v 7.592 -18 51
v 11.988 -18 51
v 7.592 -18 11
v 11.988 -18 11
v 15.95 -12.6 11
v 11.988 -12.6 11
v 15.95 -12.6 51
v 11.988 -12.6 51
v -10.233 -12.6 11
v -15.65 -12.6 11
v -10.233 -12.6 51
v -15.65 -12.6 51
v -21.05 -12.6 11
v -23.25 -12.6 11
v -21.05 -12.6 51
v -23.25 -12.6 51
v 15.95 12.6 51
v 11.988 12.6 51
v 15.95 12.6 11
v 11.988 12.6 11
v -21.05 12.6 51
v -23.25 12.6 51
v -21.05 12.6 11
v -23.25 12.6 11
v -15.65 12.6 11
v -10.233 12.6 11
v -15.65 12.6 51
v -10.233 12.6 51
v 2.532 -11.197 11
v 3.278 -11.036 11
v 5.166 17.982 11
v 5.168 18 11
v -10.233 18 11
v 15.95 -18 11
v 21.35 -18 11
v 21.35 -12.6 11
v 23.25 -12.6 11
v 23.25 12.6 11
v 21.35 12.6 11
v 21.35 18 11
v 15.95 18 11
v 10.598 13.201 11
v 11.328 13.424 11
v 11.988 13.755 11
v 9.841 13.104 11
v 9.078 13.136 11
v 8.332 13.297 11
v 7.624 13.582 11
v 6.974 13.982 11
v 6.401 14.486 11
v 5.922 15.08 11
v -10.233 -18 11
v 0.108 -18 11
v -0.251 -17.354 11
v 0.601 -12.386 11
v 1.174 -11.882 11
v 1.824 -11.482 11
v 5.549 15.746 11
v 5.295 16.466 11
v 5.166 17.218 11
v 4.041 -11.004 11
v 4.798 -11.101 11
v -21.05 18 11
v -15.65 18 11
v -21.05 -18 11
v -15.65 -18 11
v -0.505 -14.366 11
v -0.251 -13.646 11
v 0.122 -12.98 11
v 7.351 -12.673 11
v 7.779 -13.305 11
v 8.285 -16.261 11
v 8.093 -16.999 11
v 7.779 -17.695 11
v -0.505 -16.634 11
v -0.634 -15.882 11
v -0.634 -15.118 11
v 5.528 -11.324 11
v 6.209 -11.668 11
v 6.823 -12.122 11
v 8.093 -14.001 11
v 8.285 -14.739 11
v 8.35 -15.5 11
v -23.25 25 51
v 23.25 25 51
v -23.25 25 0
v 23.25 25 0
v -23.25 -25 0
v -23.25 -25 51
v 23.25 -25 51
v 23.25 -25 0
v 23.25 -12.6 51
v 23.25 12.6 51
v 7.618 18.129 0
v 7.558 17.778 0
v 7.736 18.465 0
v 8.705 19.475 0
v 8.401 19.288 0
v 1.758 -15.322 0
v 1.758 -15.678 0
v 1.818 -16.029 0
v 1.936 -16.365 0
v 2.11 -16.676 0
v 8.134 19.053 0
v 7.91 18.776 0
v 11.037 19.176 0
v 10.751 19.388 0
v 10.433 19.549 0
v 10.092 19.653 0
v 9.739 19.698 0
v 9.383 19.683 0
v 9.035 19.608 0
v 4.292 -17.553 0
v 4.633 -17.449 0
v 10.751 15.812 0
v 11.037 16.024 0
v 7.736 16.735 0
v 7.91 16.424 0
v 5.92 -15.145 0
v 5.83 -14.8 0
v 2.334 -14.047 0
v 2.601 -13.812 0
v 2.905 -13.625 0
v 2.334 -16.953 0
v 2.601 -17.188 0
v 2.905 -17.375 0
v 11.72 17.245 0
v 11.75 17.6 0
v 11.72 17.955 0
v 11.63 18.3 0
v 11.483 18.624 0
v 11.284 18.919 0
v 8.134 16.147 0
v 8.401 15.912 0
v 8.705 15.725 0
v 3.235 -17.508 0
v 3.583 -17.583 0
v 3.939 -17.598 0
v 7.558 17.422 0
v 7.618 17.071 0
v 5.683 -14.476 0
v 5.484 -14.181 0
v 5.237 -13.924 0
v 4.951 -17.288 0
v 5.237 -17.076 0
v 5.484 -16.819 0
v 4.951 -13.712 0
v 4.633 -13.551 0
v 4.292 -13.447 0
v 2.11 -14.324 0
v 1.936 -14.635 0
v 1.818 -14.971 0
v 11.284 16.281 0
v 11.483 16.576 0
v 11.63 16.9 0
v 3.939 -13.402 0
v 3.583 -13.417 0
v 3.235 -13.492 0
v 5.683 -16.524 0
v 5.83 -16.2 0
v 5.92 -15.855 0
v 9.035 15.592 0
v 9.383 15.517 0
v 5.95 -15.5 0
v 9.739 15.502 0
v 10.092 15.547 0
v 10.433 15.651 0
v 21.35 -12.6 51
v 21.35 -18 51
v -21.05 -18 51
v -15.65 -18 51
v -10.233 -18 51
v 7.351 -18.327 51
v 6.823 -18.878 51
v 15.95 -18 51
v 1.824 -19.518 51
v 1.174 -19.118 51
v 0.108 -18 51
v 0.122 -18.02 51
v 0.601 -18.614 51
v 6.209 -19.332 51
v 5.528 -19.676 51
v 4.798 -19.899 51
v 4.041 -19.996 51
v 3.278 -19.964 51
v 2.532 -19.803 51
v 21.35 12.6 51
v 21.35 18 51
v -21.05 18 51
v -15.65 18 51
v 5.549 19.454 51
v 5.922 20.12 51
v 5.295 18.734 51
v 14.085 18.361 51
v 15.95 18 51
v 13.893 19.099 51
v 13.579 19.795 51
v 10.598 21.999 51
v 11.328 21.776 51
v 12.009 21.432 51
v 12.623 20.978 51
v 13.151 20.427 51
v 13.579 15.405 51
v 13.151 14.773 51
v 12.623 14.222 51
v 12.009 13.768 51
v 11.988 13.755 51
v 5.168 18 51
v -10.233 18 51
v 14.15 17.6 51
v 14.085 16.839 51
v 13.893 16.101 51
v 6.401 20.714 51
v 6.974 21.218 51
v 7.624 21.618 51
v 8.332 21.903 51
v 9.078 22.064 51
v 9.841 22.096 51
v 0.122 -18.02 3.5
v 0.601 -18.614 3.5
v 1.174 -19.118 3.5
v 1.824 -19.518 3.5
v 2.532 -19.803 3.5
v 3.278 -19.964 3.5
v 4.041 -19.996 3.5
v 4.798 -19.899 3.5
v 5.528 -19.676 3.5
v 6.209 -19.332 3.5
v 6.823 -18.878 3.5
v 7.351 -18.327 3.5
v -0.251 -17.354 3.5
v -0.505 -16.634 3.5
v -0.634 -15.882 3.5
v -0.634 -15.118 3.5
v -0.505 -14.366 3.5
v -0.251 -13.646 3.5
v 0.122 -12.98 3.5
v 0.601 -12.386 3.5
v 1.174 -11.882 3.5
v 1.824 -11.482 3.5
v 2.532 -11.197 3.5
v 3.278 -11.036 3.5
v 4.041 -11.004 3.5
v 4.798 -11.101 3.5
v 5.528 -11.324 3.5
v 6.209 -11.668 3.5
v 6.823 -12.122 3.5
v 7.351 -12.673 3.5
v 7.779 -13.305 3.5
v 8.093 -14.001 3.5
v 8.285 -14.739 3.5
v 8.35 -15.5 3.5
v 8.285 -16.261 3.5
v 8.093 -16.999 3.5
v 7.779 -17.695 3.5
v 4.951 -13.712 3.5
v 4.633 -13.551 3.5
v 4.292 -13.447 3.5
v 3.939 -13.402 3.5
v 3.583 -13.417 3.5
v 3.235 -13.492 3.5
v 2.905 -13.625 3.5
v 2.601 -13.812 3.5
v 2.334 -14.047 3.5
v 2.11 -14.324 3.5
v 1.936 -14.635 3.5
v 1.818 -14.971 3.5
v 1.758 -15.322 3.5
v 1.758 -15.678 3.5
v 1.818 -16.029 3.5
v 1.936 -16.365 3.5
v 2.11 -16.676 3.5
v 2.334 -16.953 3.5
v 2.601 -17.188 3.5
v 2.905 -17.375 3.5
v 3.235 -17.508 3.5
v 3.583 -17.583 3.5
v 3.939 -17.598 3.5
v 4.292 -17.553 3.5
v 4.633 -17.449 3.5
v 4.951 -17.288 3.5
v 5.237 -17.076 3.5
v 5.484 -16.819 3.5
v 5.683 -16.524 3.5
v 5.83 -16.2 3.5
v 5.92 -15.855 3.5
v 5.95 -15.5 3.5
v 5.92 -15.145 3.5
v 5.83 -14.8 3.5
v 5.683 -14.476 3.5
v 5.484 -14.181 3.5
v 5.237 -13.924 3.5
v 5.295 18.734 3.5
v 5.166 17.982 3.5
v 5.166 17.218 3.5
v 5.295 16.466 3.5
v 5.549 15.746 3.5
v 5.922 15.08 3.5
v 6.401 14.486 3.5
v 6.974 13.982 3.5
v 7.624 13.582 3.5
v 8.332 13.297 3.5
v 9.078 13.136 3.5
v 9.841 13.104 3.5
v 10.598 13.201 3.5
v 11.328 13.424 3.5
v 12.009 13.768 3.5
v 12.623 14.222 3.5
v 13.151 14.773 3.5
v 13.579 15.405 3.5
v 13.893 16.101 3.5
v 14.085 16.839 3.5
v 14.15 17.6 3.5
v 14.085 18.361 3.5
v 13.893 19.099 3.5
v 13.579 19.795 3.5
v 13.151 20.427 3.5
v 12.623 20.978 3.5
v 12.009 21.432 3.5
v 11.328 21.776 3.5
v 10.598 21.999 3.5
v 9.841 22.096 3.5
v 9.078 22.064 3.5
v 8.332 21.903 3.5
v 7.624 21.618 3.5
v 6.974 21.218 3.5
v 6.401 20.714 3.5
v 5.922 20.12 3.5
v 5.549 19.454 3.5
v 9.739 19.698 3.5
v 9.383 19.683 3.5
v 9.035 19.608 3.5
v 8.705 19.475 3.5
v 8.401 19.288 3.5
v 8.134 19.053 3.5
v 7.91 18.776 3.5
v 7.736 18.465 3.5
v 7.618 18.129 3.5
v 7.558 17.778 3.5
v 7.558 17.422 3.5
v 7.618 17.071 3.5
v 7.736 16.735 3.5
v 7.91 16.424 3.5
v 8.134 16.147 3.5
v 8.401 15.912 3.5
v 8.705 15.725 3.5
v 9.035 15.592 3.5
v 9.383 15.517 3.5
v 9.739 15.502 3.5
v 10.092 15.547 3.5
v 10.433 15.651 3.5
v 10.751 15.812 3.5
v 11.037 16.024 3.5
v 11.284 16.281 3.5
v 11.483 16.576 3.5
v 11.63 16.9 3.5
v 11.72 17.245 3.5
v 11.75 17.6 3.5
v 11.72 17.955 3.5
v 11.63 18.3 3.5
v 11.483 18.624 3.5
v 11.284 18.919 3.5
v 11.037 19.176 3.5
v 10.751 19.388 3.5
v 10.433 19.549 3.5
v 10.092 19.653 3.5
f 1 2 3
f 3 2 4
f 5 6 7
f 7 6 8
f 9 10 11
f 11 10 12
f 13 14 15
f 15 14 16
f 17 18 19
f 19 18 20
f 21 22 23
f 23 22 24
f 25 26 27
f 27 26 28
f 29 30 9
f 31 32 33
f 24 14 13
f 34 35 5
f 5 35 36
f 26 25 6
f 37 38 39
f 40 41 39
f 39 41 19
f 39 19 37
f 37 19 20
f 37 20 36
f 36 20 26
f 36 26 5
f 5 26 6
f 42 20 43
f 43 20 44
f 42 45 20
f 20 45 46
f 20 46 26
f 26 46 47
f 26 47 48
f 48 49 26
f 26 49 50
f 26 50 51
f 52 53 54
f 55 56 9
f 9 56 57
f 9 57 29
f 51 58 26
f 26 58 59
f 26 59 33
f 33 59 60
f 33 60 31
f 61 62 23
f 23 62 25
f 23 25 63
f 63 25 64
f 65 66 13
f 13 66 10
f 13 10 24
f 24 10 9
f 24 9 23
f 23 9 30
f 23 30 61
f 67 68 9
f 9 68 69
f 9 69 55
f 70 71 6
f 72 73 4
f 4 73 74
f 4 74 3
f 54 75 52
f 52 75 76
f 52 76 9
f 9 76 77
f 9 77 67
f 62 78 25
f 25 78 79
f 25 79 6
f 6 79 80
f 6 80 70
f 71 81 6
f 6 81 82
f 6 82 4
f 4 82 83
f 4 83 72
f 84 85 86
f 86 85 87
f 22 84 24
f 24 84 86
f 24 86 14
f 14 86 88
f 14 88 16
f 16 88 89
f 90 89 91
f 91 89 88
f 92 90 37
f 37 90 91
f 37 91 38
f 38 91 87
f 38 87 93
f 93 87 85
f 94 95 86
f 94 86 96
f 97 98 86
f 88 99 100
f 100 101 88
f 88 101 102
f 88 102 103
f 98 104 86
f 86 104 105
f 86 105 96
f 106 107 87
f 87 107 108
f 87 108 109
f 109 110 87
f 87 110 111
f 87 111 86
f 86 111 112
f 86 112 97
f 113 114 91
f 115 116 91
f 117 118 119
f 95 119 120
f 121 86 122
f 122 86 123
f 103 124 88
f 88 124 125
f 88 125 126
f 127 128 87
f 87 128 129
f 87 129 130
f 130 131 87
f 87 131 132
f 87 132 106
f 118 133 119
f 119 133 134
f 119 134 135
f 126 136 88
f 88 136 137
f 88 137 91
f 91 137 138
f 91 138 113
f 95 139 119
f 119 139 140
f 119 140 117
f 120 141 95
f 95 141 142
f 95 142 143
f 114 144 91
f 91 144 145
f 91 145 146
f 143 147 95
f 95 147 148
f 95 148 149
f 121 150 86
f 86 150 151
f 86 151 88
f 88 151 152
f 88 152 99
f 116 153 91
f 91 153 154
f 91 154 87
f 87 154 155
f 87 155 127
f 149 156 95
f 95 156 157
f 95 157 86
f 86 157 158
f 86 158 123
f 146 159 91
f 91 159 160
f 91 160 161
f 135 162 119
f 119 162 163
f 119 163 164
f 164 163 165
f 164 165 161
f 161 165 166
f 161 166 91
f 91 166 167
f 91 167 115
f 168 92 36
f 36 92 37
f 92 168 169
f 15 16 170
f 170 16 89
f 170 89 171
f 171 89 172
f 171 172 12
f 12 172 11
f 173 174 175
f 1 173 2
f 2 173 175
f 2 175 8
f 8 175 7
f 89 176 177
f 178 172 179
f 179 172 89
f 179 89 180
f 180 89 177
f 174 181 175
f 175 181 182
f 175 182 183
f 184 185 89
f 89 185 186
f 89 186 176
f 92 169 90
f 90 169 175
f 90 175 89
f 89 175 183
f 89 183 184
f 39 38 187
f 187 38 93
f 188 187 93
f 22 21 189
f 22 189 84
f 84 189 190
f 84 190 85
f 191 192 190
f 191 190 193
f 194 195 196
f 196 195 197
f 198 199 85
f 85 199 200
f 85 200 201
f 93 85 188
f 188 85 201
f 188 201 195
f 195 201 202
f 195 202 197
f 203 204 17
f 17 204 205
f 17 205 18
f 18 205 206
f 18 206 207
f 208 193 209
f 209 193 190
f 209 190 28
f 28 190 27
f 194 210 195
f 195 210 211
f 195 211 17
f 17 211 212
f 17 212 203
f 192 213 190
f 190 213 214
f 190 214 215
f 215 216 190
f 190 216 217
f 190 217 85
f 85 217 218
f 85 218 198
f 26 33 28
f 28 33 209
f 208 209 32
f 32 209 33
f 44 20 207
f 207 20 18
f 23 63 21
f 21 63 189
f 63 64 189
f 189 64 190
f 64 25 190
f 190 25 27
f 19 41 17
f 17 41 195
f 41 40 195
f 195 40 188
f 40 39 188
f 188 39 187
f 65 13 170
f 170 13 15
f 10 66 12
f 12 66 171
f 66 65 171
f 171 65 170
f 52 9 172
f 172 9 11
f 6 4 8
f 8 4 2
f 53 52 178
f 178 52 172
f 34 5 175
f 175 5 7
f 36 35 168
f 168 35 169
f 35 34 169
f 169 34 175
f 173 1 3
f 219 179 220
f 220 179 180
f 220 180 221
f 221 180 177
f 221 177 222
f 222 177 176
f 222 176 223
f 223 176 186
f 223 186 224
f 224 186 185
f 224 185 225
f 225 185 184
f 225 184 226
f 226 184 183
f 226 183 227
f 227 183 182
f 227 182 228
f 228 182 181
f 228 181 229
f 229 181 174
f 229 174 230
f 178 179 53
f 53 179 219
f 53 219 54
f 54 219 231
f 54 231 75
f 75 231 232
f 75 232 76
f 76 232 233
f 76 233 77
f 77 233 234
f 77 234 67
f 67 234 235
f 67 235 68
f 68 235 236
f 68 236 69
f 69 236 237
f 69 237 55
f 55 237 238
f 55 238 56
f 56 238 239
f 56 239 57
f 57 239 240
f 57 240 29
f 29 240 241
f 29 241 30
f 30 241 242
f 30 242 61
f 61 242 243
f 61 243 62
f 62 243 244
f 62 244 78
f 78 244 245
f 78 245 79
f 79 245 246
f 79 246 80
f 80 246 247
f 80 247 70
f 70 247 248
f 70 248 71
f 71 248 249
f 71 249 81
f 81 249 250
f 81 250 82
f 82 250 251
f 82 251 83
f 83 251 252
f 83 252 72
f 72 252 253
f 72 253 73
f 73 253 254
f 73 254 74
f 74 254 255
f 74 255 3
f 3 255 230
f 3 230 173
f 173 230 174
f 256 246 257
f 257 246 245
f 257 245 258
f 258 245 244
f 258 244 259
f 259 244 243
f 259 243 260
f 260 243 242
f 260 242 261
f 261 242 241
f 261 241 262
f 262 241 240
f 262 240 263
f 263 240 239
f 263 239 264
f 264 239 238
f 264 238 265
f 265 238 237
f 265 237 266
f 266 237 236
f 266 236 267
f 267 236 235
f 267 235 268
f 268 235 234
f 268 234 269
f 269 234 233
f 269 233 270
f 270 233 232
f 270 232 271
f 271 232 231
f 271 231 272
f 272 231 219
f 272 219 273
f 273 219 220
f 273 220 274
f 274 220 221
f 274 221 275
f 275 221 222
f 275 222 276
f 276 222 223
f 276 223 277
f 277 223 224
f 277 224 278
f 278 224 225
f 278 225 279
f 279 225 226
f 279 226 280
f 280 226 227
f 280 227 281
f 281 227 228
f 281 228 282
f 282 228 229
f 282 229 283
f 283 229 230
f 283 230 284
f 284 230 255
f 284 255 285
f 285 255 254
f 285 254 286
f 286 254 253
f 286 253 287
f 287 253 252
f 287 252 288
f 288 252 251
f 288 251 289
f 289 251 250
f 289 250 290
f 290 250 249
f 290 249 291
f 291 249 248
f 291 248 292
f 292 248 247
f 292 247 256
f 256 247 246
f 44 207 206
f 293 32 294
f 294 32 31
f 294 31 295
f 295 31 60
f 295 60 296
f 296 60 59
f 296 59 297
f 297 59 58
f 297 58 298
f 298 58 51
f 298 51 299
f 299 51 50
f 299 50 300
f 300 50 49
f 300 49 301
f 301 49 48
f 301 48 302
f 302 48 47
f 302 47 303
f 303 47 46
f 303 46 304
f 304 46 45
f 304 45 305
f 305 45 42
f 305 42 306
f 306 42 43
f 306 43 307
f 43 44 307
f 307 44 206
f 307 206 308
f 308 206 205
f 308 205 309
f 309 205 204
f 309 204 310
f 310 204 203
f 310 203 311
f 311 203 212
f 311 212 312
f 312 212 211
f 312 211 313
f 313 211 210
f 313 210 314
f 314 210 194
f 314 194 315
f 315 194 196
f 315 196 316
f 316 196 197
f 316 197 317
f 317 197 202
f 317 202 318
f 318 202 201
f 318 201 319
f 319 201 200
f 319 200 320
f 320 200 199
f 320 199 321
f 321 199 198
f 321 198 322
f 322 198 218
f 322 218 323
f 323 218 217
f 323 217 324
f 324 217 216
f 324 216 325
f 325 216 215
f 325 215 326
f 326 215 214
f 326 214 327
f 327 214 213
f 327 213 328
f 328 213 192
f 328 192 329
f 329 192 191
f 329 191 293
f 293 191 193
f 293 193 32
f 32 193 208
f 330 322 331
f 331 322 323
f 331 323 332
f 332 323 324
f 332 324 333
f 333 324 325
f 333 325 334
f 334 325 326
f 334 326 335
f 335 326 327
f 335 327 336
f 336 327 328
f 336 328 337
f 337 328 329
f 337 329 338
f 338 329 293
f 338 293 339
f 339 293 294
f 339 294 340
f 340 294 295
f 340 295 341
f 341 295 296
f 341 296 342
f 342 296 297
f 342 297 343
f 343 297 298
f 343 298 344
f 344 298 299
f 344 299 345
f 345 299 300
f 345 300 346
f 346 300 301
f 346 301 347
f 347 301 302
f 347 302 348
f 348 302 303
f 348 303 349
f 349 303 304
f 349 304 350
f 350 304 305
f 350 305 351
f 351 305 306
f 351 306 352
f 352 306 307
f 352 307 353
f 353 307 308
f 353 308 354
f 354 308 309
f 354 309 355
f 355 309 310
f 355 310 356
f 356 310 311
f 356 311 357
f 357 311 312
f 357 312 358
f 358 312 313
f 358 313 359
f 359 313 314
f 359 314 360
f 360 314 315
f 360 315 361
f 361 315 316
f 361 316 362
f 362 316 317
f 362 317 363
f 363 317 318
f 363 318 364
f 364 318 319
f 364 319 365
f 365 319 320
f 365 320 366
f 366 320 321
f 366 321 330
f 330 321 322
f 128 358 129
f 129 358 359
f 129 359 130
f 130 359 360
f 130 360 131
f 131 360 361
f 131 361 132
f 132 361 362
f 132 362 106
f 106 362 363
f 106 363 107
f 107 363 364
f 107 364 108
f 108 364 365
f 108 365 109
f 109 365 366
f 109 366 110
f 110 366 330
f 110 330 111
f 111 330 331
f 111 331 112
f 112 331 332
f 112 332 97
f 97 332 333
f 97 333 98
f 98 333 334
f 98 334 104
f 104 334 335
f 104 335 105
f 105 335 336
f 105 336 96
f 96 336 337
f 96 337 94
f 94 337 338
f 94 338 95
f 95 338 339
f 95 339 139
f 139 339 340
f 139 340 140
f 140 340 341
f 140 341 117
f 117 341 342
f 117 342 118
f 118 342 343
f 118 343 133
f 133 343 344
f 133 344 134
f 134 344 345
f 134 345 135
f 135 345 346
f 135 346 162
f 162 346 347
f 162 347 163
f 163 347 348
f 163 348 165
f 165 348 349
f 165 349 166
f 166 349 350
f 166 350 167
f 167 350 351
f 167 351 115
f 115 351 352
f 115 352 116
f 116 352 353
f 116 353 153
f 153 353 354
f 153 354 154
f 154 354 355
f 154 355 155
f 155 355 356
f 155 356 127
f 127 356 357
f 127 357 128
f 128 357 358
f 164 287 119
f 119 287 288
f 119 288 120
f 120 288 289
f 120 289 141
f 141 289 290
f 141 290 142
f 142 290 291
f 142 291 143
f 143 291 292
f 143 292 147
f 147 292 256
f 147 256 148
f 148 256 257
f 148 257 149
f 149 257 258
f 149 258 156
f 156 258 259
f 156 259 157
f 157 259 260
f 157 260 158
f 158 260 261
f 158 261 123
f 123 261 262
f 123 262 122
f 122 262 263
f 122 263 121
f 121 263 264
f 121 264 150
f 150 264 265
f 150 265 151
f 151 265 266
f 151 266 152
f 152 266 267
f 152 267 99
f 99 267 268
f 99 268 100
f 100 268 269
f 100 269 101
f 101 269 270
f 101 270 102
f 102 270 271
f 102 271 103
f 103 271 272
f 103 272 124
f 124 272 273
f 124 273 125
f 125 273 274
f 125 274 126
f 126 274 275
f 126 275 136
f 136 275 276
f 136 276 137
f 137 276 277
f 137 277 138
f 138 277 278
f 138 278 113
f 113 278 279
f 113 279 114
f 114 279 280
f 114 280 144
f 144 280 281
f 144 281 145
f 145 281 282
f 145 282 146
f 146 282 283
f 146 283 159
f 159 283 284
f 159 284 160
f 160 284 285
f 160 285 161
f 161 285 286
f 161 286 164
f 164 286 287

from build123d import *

# Parameters (mm, degrees)
SKETCH1_W           = 50
SKETCH1_H           = 46.5
BOSS_EXTRUDE1_DEPTH = 11
SKETCH2_W           = 46.5
SKETCH2_H           = 12.4
BOSS_EXTRUDE2_DEPTH = 40
SKETCH3_W           = 5.4
SKETCH3_H           = 5.4
SKETCH3_W_2         = 22.221144714
CUT_EXTRUDE1_DEPTH  = 40
SKETCH4_R           = 4.5
CUT_EXTRUDE2_DEPTH  = 47.5
SKETCH5_R           = 2.1
CUT_EXTRUDE3_DEPTH  = 59.496260564


with BuildPart() as part:
    # Sketch1 → Boss-Extrude1 (new body)
    with BuildSketch(Plane(origin=(0, 0, 0), x_dir=(0, 1, 0), z_dir=(0, 0, 1))):
        Rectangle(SKETCH1_W, SKETCH1_H)
    extrude(amount=BOSS_EXTRUDE1_DEPTH)

    # Sketch2 → Boss-Extrude2 (add)
    with BuildSketch(Plane.XY.offset(11)):
        with Locations((0, 18.8)):
            Rectangle(SKETCH2_W, SKETCH2_H)
        with Locations((0, -18.8)):
            Rectangle(SKETCH2_W, SKETCH2_H)
    extrude(amount=BOSS_EXTRUDE2_DEPTH)

    # Sketch3 → Cut-Extrude1 (cut)
    with BuildSketch(Plane.XY.offset(51)):
        with Locations((-18.35, -15.3)):
            Rectangle(SKETCH3_W, SKETCH3_H)
        with Locations((18.65, -15.3)):
            Rectangle(SKETCH3_W, SKETCH3_H)
        with Locations((18.65, 15.3)):
            Rectangle(SKETCH3_W, SKETCH3_H)
        with Locations((-18.35, 15.3)):
            Rectangle(SKETCH3_W, SKETCH3_H)
        with Locations((0.877150449, 15.3)):
            Rectangle(SKETCH3_W_2, SKETCH3_H)
        with Locations((0.877150449, -15.3)):
            Rectangle(SKETCH3_W_2, SKETCH3_H)
    extrude(amount=-CUT_EXTRUDE1_DEPTH, mode=Mode.SUBTRACT)

    # Sketch4 → Cut-Extrude2 (cut)
    with BuildSketch(Plane.XY.offset(51)):
        with Locations((9.65, 17.6)):
            Circle(SKETCH4_R)
        with Locations((3.85, -15.5)):
            Circle(SKETCH4_R)
    extrude(amount=-CUT_EXTRUDE2_DEPTH, mode=Mode.SUBTRACT)

    # Sketch5 → Cut-Extrude3 (cut, through all)
    with BuildSketch(Plane.XY.offset(3.5)):
        with Locations((3.85, -15.5)):
            Circle(SKETCH5_R)
        with Locations((9.65, 17.6)):
            Circle(SKETCH5_R)
    extrude(amount=-CUT_EXTRUDE3_DEPTH, mode=Mode.SUBTRACT)


solid = part.part
